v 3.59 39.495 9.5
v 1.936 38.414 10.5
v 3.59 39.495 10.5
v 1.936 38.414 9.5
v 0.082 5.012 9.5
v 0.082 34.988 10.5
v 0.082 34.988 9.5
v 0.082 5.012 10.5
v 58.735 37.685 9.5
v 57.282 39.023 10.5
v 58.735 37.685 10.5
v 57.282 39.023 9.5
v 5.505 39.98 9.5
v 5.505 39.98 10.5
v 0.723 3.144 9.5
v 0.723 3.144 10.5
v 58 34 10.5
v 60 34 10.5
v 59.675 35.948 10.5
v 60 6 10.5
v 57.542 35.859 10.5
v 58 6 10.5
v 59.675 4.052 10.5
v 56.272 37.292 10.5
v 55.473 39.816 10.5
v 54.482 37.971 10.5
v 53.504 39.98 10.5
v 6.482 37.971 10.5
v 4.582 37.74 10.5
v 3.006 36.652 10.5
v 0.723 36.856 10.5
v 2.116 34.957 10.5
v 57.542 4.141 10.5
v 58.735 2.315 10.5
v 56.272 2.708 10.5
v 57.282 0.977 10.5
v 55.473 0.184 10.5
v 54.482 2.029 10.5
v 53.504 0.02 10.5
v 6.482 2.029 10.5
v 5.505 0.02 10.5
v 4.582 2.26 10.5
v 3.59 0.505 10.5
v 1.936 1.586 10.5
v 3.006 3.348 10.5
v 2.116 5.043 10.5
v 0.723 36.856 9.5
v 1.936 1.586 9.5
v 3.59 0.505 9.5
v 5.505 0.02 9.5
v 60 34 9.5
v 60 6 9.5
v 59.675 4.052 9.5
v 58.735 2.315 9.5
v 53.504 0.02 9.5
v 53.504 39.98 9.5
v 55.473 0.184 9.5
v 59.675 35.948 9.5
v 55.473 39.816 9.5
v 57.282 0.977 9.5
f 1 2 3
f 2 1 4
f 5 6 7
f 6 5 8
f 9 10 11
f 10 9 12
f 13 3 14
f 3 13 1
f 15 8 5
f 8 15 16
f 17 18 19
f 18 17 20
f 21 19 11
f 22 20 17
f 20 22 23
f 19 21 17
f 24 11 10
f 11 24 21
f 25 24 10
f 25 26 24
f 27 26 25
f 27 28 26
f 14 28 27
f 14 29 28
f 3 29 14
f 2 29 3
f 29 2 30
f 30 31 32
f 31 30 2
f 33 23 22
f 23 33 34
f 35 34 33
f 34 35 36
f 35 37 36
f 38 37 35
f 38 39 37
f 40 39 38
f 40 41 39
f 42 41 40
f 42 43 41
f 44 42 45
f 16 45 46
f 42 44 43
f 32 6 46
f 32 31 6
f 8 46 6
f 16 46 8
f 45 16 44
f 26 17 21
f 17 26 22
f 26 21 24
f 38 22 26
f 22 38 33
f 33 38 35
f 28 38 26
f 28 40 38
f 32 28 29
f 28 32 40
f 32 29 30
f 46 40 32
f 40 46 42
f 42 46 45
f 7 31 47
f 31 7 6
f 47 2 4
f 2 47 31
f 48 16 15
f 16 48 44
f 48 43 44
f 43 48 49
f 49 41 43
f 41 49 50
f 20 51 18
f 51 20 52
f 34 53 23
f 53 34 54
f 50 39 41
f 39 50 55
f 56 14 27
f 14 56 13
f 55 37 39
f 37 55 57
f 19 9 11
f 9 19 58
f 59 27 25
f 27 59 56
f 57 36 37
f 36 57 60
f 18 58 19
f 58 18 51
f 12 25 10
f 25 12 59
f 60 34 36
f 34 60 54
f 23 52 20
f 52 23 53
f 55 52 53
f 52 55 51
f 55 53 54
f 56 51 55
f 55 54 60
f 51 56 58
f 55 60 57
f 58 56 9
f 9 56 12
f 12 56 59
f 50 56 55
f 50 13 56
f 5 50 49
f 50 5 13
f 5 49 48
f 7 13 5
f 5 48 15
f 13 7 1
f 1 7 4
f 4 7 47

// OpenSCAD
/* doodle-meta {"version":1,"parameters":{"width":{"label":"Overall width","description":"Changes the body width","unit":"mm","feature":"body_width"},"depth":{"label":"Overall depth","description":"Changes the body depth","unit":"mm","feature":"body_depth"},"height":{"label":"Overall height","description":"Changes the body height","unit":"mm","feature":"body_height"},"wall_thickness":{"label":"Wall thickness","description":"Changes the uniform wall and floor thickness","unit":"mm","feature":"wall_thickness"},"corner_radius":{"label":"Outer corner radius","description":"Changes the outer corner radius","unit":"mm","feature":"corner_radius"}},"features":{"body_width":{"kind":"dimension","axis":"x","label":"Overall width"},"body_depth":{"kind":"dimension","axis":"y","label":"Overall depth"},"body_height":{"kind":"dimension","axis":"z","label":"Overall height"},"wall_thickness":{"kind":"region","label":"Wall thickness","min":[0,0,0],"max":[{"parameter":"wall_thickness","scale":1,"offset":0},{"parameter":"wall_thickness","scale":1,"offset":0},{"parameter":"height","scale":1,"offset":0}]},"corner_radius":{"kind":"region","label":"Outer corner radius","min":[{"parameter":"width","scale":1,"offset":0},{"parameter":"depth","scale":1,"offset":0},0],"max":[{"parameter":"width","scale":1,"offset":0},{"parameter":"depth","scale":1,"offset":0},{"parameter":"height","scale":1,"offset":0}]}}} */

// Parameters
width = 60;
depth = 40;
height = 20;
wall_thickness = 2;
corner_radius = 6;

// Derived sizes
inner_width = width - 2 * wall_thickness;
inner_depth = depth - 2 * wall_thickness;
inner_height = height - wall_thickness;
inner_radius = corner_radius - wall_thickness;

// Modules
module rounded_rect(w, d, r) {
    hull() {
        translate([r, r, 0]) cylinder(r=r, h=1, center=true);
        translate([w-r, r, 0]) cylinder(r=r, h=1, center=true);
        translate([r, d-r, 0]) cylinder(r=r, h=1, center=true);
        translate([w-r, d-r, 0]) cylinder(r=r, h=1, center=true);
    }
}

// Main design
difference() {
    // Outer shell
    translate([0, 0, height/2])
        rounded_rect(width, depth, corner_radius);
    
    // Inner cavity (subtractive)
    translate([wall_thickness, wall_thickness, wall_thickness + inner_height/2])
        rounded_rect(inner_width, inner_depth, inner_radius);
}
